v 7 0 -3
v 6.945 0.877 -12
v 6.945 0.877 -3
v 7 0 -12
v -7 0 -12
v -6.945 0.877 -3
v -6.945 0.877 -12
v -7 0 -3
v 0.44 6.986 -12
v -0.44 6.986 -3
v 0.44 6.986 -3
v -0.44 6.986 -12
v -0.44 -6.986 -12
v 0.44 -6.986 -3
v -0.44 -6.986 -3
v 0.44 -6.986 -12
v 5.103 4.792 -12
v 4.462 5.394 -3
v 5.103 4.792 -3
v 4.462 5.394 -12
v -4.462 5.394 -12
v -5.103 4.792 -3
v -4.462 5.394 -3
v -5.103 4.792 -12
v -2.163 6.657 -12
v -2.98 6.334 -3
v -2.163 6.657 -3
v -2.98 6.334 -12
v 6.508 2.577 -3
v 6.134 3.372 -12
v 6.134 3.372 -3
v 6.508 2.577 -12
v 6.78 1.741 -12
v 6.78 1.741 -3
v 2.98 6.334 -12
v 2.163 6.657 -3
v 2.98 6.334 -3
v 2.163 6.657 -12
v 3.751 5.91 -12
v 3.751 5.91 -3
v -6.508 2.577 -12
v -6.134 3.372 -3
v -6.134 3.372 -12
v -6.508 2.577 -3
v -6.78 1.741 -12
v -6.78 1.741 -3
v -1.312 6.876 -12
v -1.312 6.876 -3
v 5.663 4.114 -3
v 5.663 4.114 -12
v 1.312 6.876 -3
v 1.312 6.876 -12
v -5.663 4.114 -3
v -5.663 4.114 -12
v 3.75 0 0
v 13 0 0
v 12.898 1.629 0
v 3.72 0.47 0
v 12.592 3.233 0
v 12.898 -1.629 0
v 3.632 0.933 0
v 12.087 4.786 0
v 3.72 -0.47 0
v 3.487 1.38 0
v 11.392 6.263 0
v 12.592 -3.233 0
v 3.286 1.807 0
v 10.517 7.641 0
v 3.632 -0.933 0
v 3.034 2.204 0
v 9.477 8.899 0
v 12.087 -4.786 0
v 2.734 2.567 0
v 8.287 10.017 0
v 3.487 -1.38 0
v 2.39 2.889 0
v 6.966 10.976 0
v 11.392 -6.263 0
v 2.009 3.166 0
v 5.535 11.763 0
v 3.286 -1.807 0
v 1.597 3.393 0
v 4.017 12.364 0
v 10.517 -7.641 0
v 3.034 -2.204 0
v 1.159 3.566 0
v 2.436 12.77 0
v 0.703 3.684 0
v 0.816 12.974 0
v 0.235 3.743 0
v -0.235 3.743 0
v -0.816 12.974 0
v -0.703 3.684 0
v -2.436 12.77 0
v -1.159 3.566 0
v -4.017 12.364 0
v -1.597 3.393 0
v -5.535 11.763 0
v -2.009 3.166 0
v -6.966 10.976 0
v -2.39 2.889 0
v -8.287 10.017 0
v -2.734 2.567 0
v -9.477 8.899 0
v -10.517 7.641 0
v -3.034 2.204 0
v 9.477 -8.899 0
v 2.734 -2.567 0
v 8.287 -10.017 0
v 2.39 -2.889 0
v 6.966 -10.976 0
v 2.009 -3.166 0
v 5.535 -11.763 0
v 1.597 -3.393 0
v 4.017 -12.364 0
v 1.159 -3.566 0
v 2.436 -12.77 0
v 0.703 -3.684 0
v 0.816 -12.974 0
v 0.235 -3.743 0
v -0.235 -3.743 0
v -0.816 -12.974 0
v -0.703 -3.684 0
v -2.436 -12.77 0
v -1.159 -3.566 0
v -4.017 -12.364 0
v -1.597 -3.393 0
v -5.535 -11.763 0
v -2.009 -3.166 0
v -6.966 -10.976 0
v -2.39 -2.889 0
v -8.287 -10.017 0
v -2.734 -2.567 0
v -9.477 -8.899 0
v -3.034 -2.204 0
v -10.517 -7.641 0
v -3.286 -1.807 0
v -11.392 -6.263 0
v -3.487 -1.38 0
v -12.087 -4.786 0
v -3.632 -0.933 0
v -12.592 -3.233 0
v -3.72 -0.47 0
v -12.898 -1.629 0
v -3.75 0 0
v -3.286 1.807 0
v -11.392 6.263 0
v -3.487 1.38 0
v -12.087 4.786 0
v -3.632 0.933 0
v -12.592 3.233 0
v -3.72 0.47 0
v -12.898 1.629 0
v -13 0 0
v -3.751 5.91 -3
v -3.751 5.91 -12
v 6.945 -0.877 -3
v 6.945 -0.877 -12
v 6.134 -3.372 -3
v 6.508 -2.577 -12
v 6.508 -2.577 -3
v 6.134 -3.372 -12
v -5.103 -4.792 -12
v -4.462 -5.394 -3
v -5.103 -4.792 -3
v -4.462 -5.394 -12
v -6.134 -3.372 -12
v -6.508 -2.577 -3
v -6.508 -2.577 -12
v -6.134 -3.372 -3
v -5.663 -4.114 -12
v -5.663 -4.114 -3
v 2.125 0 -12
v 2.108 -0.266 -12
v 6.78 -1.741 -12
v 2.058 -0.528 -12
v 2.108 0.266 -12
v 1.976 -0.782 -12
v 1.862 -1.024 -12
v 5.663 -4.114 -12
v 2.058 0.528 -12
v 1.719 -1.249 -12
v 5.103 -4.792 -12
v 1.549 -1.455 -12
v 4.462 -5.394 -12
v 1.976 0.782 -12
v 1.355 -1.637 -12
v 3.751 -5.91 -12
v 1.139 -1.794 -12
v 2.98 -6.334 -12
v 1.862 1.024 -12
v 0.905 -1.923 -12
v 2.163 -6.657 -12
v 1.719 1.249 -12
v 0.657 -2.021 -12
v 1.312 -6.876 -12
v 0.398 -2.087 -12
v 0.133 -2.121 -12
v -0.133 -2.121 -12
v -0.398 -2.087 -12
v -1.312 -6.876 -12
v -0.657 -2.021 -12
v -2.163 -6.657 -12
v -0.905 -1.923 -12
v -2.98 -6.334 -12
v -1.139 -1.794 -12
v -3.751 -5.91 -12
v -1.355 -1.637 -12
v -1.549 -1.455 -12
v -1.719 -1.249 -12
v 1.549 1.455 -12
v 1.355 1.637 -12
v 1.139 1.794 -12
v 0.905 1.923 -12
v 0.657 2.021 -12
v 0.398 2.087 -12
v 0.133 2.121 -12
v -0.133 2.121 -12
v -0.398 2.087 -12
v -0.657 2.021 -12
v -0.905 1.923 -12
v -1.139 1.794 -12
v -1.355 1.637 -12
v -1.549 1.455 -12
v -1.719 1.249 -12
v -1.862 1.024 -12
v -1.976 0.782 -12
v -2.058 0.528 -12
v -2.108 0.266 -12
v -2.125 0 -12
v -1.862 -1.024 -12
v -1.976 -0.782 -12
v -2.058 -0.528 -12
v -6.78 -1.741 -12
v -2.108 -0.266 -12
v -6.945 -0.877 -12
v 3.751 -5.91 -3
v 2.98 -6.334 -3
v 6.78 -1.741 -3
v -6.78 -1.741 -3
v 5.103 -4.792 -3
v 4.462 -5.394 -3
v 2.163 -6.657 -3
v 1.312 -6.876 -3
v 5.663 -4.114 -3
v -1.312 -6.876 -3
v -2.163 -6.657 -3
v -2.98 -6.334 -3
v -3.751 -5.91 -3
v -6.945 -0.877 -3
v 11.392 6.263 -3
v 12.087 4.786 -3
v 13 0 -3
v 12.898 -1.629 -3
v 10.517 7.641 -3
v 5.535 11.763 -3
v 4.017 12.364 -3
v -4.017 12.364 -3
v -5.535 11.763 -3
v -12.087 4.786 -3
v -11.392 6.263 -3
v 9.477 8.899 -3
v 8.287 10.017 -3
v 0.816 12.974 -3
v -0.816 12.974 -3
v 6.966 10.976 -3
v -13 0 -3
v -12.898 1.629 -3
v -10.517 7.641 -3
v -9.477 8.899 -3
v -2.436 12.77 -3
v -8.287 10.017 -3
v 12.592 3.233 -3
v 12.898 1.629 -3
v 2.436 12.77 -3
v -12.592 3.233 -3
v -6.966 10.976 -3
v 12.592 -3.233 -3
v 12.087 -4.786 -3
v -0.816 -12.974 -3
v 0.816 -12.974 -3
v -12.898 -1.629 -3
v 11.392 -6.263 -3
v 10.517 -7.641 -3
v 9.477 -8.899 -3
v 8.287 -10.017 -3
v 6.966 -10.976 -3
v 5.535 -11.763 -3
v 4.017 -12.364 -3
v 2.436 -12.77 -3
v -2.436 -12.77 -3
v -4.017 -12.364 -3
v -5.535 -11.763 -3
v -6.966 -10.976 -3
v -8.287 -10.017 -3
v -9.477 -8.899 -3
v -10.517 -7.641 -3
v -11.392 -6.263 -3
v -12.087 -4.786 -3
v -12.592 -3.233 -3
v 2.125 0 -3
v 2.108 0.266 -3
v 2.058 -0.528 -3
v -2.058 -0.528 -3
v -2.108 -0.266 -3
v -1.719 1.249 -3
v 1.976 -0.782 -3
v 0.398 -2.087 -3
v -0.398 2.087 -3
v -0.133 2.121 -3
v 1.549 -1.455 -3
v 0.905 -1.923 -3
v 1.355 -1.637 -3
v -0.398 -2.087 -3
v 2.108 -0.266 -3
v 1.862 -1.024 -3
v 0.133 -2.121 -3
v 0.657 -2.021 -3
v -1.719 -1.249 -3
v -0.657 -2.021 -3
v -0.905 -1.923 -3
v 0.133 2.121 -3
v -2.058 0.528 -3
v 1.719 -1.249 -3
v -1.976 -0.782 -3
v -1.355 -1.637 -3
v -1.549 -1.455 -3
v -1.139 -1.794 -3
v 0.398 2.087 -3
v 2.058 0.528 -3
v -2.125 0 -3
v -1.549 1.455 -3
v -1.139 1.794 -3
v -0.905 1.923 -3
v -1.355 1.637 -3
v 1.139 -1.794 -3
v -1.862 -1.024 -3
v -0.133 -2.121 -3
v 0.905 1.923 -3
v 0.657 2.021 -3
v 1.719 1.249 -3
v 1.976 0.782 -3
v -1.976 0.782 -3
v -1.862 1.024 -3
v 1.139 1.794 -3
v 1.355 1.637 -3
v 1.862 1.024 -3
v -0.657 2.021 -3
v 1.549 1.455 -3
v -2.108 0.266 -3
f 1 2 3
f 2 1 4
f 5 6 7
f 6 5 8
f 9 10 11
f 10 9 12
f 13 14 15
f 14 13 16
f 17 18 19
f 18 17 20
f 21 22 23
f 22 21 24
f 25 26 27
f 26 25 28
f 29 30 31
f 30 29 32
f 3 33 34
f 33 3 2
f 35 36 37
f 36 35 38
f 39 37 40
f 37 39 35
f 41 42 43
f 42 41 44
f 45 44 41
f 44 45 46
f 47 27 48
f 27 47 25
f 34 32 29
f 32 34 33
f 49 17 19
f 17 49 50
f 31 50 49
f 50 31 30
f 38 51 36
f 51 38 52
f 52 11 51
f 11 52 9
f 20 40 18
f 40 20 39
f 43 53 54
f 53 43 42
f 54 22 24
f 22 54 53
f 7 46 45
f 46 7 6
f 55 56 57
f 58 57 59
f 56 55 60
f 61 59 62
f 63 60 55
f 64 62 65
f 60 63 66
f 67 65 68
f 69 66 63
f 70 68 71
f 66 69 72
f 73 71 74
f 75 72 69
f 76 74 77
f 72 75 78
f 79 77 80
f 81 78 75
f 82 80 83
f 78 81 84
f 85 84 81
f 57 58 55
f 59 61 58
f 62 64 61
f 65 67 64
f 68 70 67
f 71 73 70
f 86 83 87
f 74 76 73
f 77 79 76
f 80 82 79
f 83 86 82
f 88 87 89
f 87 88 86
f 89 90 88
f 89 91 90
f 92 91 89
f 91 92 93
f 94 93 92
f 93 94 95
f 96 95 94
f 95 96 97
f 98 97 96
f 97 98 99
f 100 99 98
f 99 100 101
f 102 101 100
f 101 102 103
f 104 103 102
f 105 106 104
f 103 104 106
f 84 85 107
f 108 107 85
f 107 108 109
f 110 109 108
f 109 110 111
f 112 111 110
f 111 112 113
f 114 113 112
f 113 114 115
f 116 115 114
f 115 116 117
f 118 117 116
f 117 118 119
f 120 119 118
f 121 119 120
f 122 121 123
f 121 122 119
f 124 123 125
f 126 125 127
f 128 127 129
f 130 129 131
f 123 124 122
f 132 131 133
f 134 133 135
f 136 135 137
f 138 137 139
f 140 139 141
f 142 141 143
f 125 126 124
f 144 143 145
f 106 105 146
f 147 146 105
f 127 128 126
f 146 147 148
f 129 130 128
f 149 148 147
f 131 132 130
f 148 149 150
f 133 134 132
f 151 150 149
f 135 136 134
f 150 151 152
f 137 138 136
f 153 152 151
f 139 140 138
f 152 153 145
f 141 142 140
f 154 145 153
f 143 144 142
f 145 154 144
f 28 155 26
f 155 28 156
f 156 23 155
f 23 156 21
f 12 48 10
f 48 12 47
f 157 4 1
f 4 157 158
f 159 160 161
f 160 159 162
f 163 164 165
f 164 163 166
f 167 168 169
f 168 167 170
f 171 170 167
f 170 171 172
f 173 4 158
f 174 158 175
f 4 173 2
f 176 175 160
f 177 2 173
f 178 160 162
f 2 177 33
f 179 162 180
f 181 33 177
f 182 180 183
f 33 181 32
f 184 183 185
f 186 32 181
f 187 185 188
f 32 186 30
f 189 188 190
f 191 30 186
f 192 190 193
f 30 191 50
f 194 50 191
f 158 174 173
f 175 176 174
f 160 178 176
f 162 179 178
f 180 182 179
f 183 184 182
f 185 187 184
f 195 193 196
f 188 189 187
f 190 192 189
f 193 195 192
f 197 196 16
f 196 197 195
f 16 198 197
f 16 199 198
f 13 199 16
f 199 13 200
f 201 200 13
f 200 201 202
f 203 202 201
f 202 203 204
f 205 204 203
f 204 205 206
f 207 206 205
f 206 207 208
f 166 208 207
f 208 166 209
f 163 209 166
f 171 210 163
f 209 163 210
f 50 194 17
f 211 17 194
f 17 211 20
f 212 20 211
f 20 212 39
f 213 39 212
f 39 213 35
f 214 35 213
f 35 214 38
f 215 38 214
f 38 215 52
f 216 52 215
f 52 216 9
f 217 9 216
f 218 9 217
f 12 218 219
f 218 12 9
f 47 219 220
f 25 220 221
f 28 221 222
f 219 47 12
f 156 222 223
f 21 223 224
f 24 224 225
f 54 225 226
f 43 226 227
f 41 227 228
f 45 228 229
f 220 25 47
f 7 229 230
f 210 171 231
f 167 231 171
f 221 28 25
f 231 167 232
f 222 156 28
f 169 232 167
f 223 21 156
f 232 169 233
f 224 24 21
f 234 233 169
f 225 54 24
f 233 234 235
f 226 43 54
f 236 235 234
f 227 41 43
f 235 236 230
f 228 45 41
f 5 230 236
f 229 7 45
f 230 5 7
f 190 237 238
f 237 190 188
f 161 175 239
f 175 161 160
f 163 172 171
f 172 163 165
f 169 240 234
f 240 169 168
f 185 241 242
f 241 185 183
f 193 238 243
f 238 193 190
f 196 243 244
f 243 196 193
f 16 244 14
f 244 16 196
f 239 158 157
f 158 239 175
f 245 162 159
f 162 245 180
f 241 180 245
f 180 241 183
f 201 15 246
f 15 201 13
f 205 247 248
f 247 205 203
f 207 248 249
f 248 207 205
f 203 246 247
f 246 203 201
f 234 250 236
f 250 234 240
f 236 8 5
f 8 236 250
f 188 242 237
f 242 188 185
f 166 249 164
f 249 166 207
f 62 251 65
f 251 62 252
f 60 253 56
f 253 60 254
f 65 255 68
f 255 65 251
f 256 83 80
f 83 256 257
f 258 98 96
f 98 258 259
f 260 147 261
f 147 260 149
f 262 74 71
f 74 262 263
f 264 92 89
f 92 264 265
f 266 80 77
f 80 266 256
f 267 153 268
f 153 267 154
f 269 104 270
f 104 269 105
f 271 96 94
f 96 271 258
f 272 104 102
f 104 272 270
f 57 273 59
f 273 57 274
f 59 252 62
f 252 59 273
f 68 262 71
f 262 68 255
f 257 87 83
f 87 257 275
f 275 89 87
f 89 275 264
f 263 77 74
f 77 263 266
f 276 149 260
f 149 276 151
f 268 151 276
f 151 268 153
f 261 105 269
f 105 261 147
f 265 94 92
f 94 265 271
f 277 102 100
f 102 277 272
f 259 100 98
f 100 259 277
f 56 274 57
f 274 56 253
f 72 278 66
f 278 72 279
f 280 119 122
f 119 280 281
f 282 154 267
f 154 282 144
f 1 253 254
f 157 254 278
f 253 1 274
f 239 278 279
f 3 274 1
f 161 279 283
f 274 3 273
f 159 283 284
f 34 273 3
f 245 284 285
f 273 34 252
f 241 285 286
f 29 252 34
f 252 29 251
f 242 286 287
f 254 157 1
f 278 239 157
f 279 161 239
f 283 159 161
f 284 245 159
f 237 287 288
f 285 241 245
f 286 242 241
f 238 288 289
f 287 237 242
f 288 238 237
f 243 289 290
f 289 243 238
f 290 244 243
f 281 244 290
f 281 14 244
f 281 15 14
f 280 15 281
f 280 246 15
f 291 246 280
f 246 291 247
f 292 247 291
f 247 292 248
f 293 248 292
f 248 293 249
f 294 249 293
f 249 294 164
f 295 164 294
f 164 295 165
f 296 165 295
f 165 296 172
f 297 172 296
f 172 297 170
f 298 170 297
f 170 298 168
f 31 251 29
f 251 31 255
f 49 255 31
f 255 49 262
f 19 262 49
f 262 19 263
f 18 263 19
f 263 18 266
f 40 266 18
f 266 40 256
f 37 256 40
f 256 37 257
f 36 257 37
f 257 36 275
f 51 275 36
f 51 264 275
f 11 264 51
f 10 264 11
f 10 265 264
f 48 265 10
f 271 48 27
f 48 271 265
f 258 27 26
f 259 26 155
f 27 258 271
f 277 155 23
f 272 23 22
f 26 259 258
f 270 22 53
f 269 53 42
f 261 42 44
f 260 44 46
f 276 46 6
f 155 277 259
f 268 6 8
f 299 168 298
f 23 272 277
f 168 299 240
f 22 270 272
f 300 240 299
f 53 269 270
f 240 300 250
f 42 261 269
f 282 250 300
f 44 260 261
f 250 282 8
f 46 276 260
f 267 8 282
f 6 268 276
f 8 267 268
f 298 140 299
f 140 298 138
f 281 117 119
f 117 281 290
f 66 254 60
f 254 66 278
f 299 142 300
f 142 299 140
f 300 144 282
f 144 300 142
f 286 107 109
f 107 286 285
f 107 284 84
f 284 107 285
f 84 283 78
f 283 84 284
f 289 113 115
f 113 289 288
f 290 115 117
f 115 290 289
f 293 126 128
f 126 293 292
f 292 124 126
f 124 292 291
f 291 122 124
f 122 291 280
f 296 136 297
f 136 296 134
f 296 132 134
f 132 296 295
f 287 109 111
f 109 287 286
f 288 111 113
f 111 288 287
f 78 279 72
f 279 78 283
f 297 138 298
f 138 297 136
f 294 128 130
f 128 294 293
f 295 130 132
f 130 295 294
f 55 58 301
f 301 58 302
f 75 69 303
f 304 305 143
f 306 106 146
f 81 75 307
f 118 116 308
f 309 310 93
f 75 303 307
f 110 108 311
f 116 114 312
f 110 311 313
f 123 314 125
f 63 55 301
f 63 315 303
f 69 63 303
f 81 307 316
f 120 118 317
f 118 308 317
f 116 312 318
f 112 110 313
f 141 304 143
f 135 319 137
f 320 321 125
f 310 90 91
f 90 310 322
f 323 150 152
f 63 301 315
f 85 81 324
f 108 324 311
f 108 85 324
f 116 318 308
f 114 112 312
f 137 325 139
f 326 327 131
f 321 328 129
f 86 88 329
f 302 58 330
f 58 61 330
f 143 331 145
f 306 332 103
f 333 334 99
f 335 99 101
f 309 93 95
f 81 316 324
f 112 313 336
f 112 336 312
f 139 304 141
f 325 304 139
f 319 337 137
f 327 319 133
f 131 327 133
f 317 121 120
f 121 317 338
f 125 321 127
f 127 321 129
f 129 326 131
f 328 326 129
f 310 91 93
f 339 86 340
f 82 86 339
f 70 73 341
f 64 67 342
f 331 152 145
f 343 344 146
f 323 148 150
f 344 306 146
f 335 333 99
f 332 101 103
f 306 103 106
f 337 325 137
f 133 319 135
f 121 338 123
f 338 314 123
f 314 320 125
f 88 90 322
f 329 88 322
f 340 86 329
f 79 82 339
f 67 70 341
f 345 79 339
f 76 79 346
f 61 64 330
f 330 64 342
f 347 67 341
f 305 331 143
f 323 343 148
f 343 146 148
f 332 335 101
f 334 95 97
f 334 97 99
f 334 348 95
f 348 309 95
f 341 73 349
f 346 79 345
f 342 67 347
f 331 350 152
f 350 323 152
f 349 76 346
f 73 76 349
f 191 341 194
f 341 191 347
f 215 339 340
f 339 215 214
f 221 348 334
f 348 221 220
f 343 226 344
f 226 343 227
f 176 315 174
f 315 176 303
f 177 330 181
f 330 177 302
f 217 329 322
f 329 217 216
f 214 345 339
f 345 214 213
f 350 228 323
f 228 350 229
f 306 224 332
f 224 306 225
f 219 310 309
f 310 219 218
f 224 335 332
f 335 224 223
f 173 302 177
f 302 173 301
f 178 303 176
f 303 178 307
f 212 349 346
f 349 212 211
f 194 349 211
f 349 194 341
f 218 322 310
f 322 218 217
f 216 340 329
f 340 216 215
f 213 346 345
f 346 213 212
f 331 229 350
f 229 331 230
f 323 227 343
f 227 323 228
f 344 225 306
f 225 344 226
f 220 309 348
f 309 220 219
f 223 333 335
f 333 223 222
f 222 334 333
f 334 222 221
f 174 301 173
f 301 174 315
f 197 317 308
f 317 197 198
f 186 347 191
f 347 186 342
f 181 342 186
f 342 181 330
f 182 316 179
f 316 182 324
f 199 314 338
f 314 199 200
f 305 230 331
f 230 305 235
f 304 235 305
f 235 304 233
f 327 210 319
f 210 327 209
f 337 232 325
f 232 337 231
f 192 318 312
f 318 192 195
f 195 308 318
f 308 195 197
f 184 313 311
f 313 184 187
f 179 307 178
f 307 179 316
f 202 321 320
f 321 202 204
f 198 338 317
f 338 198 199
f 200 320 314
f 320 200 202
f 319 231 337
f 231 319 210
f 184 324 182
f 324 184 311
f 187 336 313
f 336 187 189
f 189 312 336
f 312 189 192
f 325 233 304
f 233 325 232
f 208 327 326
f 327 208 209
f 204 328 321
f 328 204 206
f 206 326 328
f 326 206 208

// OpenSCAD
$fn = 50;


difference() {
	union() {
		translate(v = [0, 0, -12.0000000000]) {
			cylinder(h = 12, r = 7.0000000000);
		}
		translate(v = [0, 0, -3.0000000000]) {
			cylinder(h = 3, r = 13.0000000000);
		}
	}
	union() {
		translate(v = [0, 0, 0]) {
			rotate(a = [0, 0, 0]) {
				difference() {
					union() {
						#translate(v = [0, 0, -12.0000000000]) {
							cylinder(h = 12, r = 2.0000000000);
						}
						#translate(v = [0, 0, -3]) {
							cylinder(h = 3, r = 7.0000000000, r1 = 2.1250000000, r2 = 3.7500000000);
						}
						#translate(v = [0, 0, -12.0000000000]) {
							cylinder(h = 12, r = 2.1250000000);
						}
						#translate(v = [0, 0, -12.0000000000]) {
							cylinder(h = 12, r = 2.0000000000);
						}
					}
					union();
				}
			}
		}
	}
}
